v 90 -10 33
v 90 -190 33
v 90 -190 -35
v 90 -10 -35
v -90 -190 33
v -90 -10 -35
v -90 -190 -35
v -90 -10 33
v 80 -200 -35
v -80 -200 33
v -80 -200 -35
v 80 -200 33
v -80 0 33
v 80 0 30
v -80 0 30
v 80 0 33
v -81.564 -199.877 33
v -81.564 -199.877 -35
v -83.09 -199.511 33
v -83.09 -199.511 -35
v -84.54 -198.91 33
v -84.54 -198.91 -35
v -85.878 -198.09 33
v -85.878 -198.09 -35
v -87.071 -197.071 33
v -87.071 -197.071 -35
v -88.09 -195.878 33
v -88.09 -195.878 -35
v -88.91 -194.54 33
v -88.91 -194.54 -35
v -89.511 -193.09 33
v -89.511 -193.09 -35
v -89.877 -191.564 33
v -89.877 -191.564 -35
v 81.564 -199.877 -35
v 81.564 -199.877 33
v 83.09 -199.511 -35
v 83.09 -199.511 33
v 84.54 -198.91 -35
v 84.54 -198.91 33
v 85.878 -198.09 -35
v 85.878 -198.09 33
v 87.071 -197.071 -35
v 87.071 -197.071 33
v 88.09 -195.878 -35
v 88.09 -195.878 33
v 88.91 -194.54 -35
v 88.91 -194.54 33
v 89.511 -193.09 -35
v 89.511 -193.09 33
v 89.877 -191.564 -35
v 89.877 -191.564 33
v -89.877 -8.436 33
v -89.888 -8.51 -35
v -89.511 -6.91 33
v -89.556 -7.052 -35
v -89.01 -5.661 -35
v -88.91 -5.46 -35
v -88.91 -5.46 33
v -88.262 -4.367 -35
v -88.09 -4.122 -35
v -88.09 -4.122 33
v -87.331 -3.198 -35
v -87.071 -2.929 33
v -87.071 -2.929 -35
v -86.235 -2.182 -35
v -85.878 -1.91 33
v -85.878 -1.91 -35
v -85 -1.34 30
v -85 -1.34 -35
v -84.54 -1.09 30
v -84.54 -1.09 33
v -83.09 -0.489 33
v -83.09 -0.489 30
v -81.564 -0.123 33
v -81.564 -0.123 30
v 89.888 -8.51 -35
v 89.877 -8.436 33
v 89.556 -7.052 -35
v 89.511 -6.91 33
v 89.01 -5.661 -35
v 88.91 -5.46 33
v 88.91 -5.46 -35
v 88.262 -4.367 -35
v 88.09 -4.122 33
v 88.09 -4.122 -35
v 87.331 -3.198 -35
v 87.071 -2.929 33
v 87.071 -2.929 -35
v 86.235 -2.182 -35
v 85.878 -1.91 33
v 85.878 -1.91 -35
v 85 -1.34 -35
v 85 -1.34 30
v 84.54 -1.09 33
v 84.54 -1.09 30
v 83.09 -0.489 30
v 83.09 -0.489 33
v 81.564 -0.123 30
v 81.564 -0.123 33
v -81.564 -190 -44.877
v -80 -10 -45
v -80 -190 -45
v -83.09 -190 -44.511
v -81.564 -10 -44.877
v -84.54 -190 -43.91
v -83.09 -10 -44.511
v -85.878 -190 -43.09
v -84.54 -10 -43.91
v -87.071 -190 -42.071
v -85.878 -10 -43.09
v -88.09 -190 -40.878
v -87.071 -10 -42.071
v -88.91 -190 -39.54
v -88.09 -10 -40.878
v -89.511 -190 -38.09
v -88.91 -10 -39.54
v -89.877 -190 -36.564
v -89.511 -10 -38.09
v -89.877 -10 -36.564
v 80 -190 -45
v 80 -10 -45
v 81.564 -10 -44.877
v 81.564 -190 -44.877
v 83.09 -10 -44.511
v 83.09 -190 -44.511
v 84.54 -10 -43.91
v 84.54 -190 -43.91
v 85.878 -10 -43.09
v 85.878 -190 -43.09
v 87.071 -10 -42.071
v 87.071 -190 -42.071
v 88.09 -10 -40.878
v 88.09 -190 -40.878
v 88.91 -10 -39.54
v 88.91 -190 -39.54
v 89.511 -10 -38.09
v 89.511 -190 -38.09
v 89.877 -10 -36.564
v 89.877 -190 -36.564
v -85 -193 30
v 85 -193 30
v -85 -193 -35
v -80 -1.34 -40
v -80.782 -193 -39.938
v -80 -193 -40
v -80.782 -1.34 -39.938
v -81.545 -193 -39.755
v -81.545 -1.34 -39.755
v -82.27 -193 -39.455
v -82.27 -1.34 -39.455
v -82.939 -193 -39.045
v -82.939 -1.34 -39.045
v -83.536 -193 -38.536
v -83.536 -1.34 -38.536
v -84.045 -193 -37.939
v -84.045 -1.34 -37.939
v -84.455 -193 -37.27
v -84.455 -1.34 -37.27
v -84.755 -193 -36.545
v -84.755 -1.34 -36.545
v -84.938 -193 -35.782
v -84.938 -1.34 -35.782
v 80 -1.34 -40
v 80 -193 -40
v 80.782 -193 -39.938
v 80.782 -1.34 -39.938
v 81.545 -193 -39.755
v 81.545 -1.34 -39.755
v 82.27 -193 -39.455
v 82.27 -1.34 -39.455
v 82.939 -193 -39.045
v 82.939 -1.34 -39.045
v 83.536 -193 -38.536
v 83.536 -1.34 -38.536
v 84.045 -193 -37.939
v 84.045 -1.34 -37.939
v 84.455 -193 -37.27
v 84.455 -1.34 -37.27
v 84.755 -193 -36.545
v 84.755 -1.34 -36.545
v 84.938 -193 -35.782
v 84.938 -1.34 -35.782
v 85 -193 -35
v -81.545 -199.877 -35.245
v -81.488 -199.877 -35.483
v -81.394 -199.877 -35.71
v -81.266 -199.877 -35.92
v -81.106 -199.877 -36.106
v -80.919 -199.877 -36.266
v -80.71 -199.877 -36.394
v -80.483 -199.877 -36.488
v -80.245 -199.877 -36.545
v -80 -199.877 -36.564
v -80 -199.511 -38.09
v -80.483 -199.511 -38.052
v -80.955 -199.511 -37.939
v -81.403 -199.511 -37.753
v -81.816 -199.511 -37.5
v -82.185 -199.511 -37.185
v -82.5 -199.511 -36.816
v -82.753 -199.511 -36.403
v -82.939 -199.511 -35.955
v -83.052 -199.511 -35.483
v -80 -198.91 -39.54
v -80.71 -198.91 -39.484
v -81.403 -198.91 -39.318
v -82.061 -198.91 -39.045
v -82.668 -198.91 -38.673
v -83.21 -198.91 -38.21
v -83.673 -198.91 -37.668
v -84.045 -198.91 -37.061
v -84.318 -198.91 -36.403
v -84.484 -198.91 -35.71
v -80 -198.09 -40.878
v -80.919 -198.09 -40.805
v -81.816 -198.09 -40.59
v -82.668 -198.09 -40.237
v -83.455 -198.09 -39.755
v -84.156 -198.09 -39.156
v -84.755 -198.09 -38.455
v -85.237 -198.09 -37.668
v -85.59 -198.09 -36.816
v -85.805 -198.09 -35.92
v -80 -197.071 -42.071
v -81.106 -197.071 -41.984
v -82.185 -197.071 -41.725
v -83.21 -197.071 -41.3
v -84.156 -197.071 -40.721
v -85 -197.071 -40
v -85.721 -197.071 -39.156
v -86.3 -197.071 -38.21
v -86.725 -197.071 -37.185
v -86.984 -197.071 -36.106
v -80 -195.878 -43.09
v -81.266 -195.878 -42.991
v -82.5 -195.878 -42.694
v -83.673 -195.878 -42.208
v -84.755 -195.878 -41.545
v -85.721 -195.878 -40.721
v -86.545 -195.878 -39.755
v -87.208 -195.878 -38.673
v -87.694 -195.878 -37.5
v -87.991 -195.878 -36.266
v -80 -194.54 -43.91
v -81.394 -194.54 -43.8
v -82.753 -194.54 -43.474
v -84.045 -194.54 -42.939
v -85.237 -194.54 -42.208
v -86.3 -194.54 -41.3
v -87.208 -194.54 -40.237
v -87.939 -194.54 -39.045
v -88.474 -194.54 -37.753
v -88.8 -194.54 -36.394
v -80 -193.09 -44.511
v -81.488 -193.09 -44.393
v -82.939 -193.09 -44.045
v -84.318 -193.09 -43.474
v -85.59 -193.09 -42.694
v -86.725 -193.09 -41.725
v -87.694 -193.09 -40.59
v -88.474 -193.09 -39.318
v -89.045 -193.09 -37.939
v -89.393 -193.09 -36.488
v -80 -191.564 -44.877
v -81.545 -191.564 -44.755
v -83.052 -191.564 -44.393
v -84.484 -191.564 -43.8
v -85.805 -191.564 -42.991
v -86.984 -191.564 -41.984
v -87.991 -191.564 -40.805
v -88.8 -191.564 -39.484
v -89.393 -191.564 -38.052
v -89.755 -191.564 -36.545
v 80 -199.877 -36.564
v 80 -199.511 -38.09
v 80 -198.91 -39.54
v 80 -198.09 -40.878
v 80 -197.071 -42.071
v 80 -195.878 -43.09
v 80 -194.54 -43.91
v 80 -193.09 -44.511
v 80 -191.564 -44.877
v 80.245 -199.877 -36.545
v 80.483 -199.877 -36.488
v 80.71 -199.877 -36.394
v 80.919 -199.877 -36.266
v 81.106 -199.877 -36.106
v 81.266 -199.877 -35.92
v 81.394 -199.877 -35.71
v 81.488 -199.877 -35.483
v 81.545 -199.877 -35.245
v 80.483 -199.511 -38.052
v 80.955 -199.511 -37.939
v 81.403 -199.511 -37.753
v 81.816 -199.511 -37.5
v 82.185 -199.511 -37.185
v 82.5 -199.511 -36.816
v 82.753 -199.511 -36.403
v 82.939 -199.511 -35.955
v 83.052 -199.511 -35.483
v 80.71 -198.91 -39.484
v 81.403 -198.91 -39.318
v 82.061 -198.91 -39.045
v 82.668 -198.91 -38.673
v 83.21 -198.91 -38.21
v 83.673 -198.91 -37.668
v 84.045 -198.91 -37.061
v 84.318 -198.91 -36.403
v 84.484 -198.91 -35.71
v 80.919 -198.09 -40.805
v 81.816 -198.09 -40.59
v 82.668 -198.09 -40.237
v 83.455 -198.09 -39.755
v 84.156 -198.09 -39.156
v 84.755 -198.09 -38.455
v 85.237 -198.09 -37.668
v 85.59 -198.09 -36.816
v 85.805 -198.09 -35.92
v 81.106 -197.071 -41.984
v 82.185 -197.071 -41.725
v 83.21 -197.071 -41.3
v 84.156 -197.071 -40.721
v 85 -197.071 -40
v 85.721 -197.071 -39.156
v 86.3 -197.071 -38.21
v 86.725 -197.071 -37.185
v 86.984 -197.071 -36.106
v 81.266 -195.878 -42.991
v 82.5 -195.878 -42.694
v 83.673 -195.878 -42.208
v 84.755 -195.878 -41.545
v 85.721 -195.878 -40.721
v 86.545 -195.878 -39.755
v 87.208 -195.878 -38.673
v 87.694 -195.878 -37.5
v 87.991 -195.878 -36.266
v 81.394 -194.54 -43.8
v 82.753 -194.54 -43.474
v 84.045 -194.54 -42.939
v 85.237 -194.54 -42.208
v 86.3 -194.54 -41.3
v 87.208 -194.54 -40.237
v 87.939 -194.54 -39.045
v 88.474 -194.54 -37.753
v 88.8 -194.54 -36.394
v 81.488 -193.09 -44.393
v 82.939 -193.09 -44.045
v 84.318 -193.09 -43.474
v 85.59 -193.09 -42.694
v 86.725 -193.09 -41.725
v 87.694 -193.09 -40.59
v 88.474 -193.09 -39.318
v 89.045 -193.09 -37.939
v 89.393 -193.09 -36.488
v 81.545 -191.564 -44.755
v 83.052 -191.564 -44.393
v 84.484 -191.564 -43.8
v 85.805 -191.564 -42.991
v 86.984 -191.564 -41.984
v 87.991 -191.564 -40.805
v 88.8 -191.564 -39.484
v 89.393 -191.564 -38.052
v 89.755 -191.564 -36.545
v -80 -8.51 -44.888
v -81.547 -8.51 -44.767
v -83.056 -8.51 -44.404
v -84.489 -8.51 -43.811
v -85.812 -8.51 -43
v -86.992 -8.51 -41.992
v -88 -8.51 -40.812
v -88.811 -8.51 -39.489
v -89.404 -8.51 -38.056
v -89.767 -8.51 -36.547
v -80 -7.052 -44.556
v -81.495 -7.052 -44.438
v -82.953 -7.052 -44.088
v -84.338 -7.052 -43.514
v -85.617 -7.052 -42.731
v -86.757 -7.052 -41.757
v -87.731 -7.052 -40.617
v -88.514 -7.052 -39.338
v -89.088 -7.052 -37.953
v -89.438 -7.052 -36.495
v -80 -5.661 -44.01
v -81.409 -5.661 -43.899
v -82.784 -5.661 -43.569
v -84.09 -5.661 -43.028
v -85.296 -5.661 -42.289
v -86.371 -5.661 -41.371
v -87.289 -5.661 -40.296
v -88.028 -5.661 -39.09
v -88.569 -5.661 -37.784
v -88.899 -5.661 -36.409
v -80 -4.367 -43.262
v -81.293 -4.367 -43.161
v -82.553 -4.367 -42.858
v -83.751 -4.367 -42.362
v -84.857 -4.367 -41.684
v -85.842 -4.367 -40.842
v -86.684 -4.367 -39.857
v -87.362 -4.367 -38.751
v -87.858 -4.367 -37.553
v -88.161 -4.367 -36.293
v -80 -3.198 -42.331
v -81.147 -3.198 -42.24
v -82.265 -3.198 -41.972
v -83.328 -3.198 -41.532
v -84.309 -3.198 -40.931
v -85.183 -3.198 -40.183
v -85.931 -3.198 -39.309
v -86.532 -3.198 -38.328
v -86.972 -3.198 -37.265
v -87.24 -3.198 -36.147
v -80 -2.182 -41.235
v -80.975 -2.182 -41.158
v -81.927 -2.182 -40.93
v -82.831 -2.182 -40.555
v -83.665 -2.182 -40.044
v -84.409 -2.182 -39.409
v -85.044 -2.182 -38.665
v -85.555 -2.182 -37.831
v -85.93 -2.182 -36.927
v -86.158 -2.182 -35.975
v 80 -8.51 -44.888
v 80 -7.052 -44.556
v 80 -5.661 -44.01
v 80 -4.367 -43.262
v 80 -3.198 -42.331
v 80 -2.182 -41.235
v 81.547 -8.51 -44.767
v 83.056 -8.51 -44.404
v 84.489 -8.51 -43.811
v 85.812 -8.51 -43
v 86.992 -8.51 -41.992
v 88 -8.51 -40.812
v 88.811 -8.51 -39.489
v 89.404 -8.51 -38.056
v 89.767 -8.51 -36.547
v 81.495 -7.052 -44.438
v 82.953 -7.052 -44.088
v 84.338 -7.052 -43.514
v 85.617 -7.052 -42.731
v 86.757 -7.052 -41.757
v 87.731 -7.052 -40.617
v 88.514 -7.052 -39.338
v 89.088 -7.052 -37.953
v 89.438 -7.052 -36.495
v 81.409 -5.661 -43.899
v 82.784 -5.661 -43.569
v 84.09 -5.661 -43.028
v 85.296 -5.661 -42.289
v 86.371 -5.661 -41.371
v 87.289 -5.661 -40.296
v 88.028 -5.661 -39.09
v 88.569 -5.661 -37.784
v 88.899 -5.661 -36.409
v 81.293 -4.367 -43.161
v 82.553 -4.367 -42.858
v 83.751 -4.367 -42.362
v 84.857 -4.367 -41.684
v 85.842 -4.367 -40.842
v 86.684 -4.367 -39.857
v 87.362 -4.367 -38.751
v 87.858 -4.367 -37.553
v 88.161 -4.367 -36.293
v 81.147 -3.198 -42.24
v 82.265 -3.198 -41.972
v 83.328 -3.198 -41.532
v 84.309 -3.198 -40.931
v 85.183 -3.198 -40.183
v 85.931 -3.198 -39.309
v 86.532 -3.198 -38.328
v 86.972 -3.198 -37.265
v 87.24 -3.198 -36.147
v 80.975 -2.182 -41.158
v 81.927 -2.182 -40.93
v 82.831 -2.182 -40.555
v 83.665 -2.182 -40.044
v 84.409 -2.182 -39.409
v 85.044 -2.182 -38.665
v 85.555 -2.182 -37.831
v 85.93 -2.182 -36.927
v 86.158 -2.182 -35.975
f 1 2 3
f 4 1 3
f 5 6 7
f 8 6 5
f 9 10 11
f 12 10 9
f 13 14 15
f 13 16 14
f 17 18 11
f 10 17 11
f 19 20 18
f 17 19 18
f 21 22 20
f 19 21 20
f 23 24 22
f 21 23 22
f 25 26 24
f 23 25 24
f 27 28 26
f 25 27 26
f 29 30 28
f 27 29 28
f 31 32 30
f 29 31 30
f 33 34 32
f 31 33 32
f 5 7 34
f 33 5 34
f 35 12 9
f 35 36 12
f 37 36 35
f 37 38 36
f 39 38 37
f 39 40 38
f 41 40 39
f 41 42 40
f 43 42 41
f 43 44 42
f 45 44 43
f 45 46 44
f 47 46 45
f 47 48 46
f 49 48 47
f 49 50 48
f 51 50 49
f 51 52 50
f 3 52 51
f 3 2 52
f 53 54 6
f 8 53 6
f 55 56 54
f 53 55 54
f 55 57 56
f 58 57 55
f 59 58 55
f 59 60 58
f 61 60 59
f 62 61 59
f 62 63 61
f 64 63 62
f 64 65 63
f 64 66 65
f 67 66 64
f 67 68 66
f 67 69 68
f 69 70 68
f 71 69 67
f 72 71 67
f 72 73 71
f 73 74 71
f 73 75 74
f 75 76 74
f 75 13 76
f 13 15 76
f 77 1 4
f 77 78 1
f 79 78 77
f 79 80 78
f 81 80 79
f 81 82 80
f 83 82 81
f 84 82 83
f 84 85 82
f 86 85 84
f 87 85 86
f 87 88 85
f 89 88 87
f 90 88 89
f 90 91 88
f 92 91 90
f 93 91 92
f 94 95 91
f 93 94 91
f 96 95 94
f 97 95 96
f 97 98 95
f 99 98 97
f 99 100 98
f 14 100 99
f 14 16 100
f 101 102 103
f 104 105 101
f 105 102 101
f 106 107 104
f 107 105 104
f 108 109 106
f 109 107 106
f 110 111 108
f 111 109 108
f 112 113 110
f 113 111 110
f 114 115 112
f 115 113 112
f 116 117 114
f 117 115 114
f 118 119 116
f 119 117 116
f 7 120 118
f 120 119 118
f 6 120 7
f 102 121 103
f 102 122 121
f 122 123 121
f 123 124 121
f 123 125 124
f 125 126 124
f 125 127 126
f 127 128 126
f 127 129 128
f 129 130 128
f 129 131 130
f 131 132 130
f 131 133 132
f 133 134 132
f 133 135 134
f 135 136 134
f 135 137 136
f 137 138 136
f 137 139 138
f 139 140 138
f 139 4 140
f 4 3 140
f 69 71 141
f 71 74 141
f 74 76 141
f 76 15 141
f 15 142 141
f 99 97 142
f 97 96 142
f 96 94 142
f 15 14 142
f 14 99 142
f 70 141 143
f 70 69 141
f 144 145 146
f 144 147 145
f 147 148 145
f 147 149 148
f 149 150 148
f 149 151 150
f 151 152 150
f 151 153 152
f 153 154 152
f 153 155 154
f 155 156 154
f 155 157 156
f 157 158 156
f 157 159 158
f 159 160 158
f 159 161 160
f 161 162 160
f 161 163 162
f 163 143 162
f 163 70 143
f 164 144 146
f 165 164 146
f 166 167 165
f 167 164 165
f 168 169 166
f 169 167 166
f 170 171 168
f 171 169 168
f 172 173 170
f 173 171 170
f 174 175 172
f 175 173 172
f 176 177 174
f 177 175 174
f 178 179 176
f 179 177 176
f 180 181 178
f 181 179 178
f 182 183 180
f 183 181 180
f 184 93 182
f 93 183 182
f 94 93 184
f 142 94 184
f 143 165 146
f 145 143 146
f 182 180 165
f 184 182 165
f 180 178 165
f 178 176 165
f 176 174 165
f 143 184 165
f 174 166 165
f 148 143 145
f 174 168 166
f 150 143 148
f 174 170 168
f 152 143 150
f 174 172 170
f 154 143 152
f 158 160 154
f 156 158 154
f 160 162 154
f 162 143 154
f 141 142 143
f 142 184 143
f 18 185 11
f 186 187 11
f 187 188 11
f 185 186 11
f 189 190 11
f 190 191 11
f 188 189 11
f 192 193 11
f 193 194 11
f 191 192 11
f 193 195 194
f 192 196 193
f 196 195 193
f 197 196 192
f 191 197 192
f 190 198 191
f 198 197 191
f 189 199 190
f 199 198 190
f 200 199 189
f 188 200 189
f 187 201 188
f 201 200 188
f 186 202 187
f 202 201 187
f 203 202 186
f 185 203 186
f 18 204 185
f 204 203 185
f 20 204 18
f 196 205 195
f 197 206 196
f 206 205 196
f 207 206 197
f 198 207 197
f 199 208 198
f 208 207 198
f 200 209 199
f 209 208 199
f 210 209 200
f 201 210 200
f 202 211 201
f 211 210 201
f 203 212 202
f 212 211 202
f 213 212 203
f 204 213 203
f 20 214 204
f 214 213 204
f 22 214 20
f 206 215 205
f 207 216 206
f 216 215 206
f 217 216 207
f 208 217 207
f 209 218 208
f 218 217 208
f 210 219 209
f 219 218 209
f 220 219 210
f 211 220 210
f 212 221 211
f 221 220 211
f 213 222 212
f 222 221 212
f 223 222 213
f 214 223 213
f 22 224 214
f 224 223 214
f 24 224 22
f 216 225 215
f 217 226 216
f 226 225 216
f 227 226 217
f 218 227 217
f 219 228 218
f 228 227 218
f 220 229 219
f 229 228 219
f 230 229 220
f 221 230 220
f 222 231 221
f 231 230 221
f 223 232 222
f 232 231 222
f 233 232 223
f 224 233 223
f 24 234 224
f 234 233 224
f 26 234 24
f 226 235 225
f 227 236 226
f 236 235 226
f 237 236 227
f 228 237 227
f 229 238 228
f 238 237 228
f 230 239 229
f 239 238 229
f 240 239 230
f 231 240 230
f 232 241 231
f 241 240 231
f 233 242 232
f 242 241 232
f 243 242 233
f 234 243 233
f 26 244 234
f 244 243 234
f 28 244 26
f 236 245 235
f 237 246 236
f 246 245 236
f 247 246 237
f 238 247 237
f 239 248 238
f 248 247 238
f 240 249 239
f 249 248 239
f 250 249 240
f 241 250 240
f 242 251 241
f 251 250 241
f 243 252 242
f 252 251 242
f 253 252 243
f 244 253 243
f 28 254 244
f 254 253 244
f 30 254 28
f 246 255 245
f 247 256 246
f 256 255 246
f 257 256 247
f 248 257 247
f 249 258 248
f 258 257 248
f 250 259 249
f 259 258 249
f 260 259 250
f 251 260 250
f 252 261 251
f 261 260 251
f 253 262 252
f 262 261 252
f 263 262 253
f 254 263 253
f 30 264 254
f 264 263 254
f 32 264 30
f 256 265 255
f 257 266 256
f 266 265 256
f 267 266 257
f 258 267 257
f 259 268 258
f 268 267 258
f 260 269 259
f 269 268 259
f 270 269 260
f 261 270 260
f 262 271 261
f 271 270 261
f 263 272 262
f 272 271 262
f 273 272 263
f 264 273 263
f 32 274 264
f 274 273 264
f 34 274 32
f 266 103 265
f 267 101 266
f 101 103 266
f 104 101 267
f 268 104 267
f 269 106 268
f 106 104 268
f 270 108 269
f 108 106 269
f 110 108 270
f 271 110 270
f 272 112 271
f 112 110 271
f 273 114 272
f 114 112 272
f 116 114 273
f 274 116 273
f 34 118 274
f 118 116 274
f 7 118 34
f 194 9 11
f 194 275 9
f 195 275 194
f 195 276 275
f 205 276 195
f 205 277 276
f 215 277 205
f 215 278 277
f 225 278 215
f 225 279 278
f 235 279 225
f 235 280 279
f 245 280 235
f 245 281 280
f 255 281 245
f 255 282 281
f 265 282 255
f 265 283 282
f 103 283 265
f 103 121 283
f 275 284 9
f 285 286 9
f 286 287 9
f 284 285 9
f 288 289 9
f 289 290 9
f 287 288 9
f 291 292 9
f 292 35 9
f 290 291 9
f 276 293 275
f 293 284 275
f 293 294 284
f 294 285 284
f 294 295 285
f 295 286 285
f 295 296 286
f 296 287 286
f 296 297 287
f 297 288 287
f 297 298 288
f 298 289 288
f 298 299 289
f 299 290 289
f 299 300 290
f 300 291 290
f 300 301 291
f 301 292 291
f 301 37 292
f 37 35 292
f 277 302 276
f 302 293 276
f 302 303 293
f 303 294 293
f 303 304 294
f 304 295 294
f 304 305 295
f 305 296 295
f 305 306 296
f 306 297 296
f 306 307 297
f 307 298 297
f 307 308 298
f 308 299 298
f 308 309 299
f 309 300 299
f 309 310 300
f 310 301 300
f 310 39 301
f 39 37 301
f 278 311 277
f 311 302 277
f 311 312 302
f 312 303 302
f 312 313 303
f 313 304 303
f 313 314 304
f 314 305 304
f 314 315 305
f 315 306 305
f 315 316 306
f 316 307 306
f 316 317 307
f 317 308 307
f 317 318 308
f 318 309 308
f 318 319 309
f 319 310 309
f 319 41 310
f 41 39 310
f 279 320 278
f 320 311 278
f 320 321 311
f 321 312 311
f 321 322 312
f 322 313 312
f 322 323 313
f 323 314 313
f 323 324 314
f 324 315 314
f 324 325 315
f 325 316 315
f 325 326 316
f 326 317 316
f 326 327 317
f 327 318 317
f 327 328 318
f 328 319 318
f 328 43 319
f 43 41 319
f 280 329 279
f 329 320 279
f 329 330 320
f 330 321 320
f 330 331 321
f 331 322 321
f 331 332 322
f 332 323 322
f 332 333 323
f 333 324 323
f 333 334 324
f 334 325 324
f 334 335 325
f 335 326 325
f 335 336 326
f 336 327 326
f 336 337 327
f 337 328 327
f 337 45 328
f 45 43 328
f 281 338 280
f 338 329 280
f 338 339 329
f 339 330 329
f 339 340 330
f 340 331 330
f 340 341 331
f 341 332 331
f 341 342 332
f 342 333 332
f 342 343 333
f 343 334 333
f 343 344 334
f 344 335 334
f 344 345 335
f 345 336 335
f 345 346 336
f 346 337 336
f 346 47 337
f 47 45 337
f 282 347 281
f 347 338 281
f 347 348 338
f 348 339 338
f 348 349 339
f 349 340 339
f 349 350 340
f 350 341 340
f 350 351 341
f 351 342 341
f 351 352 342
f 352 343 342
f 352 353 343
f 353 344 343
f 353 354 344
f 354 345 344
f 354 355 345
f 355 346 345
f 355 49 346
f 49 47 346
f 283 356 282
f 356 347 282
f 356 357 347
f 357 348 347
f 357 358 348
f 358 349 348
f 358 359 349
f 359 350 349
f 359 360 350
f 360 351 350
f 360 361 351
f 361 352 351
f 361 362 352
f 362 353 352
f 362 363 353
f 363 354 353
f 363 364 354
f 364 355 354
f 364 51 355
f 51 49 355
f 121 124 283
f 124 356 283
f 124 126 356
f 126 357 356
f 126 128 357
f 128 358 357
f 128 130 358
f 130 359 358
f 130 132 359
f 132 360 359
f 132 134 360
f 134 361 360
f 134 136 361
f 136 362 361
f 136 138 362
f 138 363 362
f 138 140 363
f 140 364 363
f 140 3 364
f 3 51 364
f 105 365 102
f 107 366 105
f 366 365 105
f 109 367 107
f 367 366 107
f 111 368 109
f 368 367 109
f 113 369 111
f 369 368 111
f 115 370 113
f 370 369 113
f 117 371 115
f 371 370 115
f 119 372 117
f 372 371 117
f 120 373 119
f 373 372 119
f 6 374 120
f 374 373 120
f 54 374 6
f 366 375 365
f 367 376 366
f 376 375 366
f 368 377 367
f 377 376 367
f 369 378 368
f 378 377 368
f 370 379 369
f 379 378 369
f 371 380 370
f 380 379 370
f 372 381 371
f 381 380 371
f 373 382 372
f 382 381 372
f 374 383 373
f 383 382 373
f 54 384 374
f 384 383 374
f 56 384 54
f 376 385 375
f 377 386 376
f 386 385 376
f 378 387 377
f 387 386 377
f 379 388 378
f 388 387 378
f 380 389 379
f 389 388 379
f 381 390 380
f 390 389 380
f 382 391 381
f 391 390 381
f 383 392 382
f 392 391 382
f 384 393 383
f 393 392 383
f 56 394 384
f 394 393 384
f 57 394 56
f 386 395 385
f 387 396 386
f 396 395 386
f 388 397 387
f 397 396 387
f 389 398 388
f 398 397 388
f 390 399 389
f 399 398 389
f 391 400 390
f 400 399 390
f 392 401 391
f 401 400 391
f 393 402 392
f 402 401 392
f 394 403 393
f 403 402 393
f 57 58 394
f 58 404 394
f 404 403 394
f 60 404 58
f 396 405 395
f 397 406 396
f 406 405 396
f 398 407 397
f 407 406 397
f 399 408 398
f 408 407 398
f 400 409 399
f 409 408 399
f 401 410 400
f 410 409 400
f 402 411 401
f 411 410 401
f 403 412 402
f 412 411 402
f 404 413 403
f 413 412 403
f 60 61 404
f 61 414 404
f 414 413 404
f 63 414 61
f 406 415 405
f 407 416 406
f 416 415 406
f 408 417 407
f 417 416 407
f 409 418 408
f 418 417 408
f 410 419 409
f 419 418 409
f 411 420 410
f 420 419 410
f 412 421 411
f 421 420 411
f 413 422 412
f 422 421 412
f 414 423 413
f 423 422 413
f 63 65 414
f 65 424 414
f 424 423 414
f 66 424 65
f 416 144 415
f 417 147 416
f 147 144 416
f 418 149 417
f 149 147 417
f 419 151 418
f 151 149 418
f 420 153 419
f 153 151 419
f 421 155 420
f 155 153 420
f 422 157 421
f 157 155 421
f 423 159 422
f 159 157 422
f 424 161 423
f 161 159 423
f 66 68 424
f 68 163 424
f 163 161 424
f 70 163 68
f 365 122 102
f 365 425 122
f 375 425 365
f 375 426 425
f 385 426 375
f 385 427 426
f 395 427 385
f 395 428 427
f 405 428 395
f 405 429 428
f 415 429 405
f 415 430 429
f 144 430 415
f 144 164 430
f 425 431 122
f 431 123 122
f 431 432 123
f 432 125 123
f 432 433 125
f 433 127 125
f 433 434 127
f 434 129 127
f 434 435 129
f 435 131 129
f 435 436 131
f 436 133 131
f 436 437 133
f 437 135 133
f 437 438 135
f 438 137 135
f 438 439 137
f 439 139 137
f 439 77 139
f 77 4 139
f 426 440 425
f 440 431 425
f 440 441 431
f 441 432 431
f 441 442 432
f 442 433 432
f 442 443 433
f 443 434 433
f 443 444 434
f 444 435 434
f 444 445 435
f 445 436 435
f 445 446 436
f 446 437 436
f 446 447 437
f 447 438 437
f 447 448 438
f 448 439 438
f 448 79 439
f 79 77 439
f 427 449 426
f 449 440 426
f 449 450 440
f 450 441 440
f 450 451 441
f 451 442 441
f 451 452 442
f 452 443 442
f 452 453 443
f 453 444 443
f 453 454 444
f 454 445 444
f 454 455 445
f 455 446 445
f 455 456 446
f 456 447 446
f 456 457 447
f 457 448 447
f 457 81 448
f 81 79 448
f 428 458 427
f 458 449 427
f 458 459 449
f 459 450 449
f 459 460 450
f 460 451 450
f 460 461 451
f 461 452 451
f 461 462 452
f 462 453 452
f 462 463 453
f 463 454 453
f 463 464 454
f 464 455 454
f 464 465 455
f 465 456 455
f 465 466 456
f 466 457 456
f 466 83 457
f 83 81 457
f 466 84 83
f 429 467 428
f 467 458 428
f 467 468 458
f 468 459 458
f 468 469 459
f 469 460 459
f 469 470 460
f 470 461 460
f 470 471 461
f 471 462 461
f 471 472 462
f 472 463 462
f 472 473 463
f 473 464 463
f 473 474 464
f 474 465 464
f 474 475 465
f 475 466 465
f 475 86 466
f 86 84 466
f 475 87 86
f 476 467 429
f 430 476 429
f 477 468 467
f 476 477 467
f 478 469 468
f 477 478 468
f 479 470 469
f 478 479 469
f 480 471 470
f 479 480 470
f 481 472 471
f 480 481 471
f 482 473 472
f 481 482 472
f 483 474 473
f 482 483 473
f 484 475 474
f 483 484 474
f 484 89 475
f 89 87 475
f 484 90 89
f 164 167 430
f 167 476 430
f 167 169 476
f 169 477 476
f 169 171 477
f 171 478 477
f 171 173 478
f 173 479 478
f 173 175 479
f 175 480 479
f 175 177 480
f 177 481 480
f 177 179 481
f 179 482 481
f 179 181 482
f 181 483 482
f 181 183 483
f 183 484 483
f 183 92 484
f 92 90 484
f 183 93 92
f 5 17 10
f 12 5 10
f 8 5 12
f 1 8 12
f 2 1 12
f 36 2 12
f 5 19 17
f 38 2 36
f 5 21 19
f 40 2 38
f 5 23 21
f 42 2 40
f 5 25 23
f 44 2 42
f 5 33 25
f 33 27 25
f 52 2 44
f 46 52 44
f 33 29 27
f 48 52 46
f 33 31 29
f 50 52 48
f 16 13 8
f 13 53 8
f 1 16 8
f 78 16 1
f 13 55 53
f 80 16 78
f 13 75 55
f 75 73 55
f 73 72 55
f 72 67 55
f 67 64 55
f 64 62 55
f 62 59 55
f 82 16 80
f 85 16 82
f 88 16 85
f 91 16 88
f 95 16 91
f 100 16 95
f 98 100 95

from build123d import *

# Parameters (mm, degrees)
BOSS_EXTRUDE1_DEPTH = 200
CUT_EXTRUDE1_DEPTH  = 193
FILLET1_R           = 10
FILLET2_R           = 10
SKETCH5_W           = 221.977044751
SKETCH5_H           = 222.508090313
CUT_EXTRUDE2_DEPTH  = 2


with BuildPart() as part:
    # Sketch1 → Boss-Extrude1 (new body)
    with BuildSketch(Plane(origin=(0, 0, 0), x_dir=(1, 0, 0), z_dir=(0, 1, 0))):
        with BuildLine():
            Line((-80, 45), (80, 45))
            ThreePointArc((80, 45), (87.071067812, 42.071067812), (90, 35))
            Line((90, 35), (90, -35))
            Line((90, -35), (-90, -35))
            Line((-90, -35), (-90, 35))
            ThreePointArc((-90, 35), (-87.071067812, 42.071067812), (-80, 45))
        make_face()
    extrude(amount=-BOSS_EXTRUDE1_DEPTH)

    # Sketch2 → Cut-Extrude1 (cut)
    with BuildSketch(Plane(origin=(0, 0, 0), x_dir=(1, 0, 0), z_dir=(0, 1, 0))):
        with BuildLine():
            Line((85, -30), (85, 35))
            ThreePointArc((85, 35), (83.535533906, 38.535533906), (80, 40))
            Line((80, 40), (-80, 40))
            ThreePointArc((-80, 40), (-83.535533906, 38.535533906), (-85, 35))
            Line((-85, 35), (-85, -30))
            Line((-85, -30), (85, -30))
        make_face()
    extrude(amount=-CUT_EXTRUDE1_DEPTH, mode=Mode.SUBTRACT)

    # Fillet1
    fillet1_edges = [part.edges().sort_by_distance(p)[0] for p in [
        (0, -200, -45),
        (-87.071067812, -200, -42.071067812),
        (-90, -200, 0),
        (90, -200, 0),
        (87.071067812, -200, -42.071067812),
    ]]
    fillet(fillet1_edges, radius=FILLET1_R)

    # Fillet2
    # the kernel refuses this fillet: 10 mm, written as the material it takes off along each edge
    with BuildSketch(Plane(origin=(90, 0, -35), x_dir=(-1, 0, 0), z_dir=(0, 0, 1)), Plane(origin=(-90, 0, 60), x_dir=(1, 0, 0), z_dir=(0, 0, -1))) as fillet2_piece_1:
        with BuildLine():
            CenterArc((FILLET2_R, FILLET2_R), FILLET2_R, 180, 90)
            Line((0, FILLET2_R), (0, 0))
            Line((0, 0), (FILLET2_R, 0))
        make_face()
    extrude(amount=95, mode=Mode.SUBTRACT)
    with BuildSketch(Plane(origin=(-80, 0, -35), x_dir=(-1, 0, 0), z_dir=(0, 0, 1))) as fillet2_piece_2:
        with BuildLine():
            CenterArc((10 - FILLET2_R, FILLET2_R), FILLET2_R, 270, 90)
            Line((10 - FILLET2_R, 0), (10, 0))
            Line((10, 0), (10, FILLET2_R))
        make_face()
    revolve(axis=Axis((-80, 0, -35), (0, -1, 0)), revolution_arc=90, mode=Mode.SUBTRACT)
    with BuildSketch(Plane(origin=(-80, 0, -45), x_dir=(0, -1, 0), z_dir=(1, 0, 0))) as fillet2_piece_3:
        with BuildLine():
            CenterArc((FILLET2_R, -FILLET2_R), FILLET2_R, 90, 90)
            Line((0, -FILLET2_R), (0, 0))
            Line((0, 0), (FILLET2_R, 0))
        make_face()
    extrude(amount=160, mode=Mode.SUBTRACT)
    with BuildSketch(Plane(origin=(80, 0, -35), x_dir=(0, 0, -1), z_dir=(-1, 0, 0))) as fillet2_piece_4:
        with BuildLine():
            CenterArc((10 - FILLET2_R, FILLET2_R), FILLET2_R, 270, 90)
            Line((10, FILLET2_R), (10, 0))
            Line((10, 0), (10 - FILLET2_R, 0))
        make_face()
    revolve(axis=Axis((80, 0, -35), (0, -1, 0)), revolution_arc=90, mode=Mode.SUBTRACT)

    # Sketch5 → Cut-Extrude2 (cut)
    with BuildSketch(Plane.XY.offset(35)):
        with Locations((11.417479574, -99.417273917)):
            Rectangle(SKETCH5_W, SKETCH5_H)
    extrude(amount=-CUT_EXTRUDE2_DEPTH, mode=Mode.SUBTRACT)


solid = part.part
